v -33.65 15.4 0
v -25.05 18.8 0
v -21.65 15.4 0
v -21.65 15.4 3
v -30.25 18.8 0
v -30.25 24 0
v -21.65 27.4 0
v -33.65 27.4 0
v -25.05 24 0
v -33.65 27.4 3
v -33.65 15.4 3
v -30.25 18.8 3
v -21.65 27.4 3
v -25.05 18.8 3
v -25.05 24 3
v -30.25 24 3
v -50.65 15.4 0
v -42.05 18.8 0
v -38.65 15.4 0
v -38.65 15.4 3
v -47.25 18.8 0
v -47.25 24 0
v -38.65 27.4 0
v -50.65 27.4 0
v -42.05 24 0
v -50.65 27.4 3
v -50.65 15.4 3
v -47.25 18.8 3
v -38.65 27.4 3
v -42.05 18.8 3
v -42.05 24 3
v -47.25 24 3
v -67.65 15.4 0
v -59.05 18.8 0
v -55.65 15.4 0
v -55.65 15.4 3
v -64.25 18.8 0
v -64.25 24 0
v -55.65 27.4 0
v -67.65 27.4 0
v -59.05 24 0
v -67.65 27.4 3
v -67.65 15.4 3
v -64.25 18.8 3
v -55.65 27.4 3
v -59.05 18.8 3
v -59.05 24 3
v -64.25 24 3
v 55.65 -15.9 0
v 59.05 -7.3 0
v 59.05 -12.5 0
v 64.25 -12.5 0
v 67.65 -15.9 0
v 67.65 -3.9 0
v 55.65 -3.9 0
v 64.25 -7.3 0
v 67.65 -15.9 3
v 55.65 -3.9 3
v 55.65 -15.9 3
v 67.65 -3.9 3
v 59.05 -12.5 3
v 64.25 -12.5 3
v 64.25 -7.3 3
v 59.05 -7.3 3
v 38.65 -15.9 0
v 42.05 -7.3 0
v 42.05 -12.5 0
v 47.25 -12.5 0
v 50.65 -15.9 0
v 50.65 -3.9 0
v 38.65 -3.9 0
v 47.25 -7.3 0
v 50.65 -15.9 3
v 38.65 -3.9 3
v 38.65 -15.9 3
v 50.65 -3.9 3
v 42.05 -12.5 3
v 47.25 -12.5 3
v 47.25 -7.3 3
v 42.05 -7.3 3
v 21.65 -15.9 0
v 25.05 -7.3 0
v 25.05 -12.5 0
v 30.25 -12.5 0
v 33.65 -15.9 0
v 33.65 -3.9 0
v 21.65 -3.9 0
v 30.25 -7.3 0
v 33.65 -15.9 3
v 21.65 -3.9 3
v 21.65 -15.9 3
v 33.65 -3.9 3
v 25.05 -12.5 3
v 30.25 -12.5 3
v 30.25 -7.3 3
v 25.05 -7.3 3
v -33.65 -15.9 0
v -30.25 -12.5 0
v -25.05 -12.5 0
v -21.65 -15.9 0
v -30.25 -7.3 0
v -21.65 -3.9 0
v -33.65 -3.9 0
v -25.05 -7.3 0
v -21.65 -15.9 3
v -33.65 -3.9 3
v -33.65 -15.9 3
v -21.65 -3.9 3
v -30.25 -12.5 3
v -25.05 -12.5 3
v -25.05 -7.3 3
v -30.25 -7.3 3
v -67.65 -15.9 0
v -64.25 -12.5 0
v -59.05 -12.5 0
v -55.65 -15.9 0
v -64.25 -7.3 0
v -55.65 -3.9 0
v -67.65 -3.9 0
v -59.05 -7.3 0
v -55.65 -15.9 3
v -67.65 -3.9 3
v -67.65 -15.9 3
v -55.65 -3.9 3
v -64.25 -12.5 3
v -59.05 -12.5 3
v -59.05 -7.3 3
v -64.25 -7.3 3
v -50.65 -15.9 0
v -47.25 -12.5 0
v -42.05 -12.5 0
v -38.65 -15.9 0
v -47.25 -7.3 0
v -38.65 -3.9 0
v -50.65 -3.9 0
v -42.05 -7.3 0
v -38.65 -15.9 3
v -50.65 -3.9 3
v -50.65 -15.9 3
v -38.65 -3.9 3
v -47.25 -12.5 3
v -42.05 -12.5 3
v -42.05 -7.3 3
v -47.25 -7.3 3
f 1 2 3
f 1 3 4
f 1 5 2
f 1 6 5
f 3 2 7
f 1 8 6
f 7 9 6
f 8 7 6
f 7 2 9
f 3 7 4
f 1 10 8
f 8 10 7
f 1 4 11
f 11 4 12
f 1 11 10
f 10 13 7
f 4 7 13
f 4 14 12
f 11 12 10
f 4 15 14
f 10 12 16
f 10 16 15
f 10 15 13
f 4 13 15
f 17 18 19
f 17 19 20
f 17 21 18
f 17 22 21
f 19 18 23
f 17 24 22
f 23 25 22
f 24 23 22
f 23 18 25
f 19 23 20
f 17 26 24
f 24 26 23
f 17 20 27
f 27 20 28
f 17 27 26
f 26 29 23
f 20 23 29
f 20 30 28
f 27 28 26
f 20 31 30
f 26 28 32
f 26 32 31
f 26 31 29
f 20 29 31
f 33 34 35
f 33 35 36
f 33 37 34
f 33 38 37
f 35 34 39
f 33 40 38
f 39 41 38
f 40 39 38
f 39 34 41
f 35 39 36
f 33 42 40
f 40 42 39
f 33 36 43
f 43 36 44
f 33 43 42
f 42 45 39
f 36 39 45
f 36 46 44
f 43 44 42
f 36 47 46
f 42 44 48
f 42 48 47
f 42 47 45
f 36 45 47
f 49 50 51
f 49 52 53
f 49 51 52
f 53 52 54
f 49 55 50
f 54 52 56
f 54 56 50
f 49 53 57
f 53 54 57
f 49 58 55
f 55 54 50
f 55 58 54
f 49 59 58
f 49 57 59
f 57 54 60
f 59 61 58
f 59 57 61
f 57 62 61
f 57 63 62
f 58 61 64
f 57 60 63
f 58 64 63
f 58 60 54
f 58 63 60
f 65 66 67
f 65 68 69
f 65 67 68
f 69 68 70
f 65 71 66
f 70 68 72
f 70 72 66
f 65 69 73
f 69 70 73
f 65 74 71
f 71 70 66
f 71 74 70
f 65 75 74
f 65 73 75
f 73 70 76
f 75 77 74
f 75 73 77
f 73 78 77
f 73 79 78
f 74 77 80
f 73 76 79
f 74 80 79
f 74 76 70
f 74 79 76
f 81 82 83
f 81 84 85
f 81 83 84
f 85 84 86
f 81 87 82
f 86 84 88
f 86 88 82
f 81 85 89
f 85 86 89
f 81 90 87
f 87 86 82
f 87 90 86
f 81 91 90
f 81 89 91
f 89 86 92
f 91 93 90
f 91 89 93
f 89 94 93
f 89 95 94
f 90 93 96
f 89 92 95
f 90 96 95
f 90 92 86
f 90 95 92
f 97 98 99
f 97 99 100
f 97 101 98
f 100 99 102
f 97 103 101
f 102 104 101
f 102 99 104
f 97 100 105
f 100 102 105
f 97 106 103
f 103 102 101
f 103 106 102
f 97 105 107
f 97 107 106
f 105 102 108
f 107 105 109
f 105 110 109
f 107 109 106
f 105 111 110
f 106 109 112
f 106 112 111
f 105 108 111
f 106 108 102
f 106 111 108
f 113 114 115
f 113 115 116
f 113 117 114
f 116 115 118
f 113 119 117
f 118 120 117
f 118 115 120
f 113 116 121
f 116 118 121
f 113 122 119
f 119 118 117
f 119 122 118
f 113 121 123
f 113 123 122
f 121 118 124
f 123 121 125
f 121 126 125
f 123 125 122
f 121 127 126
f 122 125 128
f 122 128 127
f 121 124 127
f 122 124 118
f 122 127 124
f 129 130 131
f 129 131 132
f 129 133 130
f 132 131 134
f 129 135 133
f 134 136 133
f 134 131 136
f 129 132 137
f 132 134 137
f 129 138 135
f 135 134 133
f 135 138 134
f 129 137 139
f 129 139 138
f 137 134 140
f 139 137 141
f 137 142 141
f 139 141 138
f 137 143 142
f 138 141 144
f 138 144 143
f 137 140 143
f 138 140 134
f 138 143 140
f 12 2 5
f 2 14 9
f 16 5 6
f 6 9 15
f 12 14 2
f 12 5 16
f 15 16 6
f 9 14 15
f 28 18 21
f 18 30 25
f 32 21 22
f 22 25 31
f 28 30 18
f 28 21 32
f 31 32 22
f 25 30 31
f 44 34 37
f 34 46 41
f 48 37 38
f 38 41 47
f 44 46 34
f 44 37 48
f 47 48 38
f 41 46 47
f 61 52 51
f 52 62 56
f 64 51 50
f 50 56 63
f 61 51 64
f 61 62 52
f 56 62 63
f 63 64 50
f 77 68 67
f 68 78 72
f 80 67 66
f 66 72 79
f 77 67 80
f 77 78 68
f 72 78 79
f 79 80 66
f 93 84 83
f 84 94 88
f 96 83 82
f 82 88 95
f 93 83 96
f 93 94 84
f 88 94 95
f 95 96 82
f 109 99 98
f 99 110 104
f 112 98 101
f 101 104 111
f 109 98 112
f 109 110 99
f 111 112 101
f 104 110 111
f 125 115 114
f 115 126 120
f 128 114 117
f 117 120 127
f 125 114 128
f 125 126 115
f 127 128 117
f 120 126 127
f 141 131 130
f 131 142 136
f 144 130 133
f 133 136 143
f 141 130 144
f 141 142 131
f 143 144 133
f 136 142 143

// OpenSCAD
$fn = 50;

difference() {
	union() {
		translate(v = [-61.6500000005, -9.899999999999999, 0]) {
			rotate(a = [0, 0, 0]) {
				difference() {
					union() {
						translate(v = [-6.0, -6.0, 0]) {
							cube(size = [12.0, 12.0, 3.0]);
						}
					}
					union() {
						translate(v = [-2.6, -2.6, -0.1]) {
							cube(size = [5.2, 5.2, 3.2]);
						}
					}
				}
			}
		}
		translate(v = [-44.6500000005, -9.899999999999999, 0]) {
			rotate(a = [0, 0, 0]) {
				difference() {
					union() {
						translate(v = [-6.0, -6.0, 0]) {
							cube(size = [12.0, 12.0, 3.0]);
						}
					}
					union() {
						translate(v = [-2.6, -2.6, -0.1]) {
							cube(size = [5.2, 5.2, 3.2]);
						}
					}
				}
			}
		}
		translate(v = [-27.6500000005, -9.899999999999999, 0]) {
			rotate(a = [0, 0, 0]) {
				difference() {
					union() {
						translate(v = [-6.0, -6.0, 0]) {
							cube(size = [12.0, 12.0, 3.0]);
						}
					}
					union() {
						translate(v = [-2.6, -2.6, -0.1]) {
							cube(size = [5.2, 5.2, 3.2]);
						}
					}
				}
			}
		}
		translate(v = [27.649999999499997, -9.899999999999999, 0]) {
			rotate(a = [0, 0, 0]) {
				difference() {
					union() {
						translate(v = [-6.0, -6.0, 0]) {
							cube(size = [12.0, 12.0, 3.0]);
						}
					}
					union() {
						translate(v = [-2.6, -2.6, -0.1]) {
							cube(size = [5.2, 5.2, 3.2]);
						}
					}
				}
			}
		}
		translate(v = [44.6499999995, -9.899999999999999, 0]) {
			rotate(a = [0, 0, 0]) {
				difference() {
					union() {
						translate(v = [-6.0, -6.0, 0]) {
							cube(size = [12.0, 12.0, 3.0]);
						}
					}
					union() {
						translate(v = [-2.6, -2.6, -0.1]) {
							cube(size = [5.2, 5.2, 3.2]);
						}
					}
				}
			}
		}
		translate(v = [61.6499999995, -9.899999999999999, 0]) {
			rotate(a = [0, 0, 0]) {
				difference() {
					union() {
						translate(v = [-6.0, -6.0, 0]) {
							cube(size = [12.0, 12.0, 3.0]);
						}
					}
					union() {
						translate(v = [-2.6, -2.6, -0.1]) {
							cube(size = [5.2, 5.2, 3.2]);
						}
					}
				}
			}
		}
		translate(v = [-61.6500000005, 21.400000000000002, 0]) {
			rotate(a = [0, 0, 0]) {
				difference() {
					union() {
						translate(v = [-6.0, -6.0, 0]) {
							cube(size = [12.0, 12.0, 3.0]);
						}
					}
					union() {
						translate(v = [-2.6, -2.6, -0.1]) {
							cube(size = [5.2, 5.2, 3.2]);
						}
					}
				}
			}
		}
		translate(v = [-44.6500000005, 21.400000000000002, 0]) {
			rotate(a = [0, 0, 0]) {
				difference() {
					union() {
						translate(v = [-6.0, -6.0, 0]) {
							cube(size = [12.0, 12.0, 3.0]);
						}
					}
					union() {
						translate(v = [-2.6, -2.6, -0.1]) {
							cube(size = [5.2, 5.2, 3.2]);
						}
					}
				}
			}
		}
		translate(v = [-27.6500000005, 21.400000000000002, 0]) {
			rotate(a = [0, 0, 0]) {
				difference() {
					union() {
						translate(v = [-6.0, -6.0, 0]) {
							cube(size = [12.0, 12.0, 3.0]);
						}
					}
					union() {
						translate(v = [-2.6, -2.6, -0.1]) {
							cube(size = [5.2, 5.2, 3.2]);
						}
					}
				}
			}
		}
	}
	union();
}
